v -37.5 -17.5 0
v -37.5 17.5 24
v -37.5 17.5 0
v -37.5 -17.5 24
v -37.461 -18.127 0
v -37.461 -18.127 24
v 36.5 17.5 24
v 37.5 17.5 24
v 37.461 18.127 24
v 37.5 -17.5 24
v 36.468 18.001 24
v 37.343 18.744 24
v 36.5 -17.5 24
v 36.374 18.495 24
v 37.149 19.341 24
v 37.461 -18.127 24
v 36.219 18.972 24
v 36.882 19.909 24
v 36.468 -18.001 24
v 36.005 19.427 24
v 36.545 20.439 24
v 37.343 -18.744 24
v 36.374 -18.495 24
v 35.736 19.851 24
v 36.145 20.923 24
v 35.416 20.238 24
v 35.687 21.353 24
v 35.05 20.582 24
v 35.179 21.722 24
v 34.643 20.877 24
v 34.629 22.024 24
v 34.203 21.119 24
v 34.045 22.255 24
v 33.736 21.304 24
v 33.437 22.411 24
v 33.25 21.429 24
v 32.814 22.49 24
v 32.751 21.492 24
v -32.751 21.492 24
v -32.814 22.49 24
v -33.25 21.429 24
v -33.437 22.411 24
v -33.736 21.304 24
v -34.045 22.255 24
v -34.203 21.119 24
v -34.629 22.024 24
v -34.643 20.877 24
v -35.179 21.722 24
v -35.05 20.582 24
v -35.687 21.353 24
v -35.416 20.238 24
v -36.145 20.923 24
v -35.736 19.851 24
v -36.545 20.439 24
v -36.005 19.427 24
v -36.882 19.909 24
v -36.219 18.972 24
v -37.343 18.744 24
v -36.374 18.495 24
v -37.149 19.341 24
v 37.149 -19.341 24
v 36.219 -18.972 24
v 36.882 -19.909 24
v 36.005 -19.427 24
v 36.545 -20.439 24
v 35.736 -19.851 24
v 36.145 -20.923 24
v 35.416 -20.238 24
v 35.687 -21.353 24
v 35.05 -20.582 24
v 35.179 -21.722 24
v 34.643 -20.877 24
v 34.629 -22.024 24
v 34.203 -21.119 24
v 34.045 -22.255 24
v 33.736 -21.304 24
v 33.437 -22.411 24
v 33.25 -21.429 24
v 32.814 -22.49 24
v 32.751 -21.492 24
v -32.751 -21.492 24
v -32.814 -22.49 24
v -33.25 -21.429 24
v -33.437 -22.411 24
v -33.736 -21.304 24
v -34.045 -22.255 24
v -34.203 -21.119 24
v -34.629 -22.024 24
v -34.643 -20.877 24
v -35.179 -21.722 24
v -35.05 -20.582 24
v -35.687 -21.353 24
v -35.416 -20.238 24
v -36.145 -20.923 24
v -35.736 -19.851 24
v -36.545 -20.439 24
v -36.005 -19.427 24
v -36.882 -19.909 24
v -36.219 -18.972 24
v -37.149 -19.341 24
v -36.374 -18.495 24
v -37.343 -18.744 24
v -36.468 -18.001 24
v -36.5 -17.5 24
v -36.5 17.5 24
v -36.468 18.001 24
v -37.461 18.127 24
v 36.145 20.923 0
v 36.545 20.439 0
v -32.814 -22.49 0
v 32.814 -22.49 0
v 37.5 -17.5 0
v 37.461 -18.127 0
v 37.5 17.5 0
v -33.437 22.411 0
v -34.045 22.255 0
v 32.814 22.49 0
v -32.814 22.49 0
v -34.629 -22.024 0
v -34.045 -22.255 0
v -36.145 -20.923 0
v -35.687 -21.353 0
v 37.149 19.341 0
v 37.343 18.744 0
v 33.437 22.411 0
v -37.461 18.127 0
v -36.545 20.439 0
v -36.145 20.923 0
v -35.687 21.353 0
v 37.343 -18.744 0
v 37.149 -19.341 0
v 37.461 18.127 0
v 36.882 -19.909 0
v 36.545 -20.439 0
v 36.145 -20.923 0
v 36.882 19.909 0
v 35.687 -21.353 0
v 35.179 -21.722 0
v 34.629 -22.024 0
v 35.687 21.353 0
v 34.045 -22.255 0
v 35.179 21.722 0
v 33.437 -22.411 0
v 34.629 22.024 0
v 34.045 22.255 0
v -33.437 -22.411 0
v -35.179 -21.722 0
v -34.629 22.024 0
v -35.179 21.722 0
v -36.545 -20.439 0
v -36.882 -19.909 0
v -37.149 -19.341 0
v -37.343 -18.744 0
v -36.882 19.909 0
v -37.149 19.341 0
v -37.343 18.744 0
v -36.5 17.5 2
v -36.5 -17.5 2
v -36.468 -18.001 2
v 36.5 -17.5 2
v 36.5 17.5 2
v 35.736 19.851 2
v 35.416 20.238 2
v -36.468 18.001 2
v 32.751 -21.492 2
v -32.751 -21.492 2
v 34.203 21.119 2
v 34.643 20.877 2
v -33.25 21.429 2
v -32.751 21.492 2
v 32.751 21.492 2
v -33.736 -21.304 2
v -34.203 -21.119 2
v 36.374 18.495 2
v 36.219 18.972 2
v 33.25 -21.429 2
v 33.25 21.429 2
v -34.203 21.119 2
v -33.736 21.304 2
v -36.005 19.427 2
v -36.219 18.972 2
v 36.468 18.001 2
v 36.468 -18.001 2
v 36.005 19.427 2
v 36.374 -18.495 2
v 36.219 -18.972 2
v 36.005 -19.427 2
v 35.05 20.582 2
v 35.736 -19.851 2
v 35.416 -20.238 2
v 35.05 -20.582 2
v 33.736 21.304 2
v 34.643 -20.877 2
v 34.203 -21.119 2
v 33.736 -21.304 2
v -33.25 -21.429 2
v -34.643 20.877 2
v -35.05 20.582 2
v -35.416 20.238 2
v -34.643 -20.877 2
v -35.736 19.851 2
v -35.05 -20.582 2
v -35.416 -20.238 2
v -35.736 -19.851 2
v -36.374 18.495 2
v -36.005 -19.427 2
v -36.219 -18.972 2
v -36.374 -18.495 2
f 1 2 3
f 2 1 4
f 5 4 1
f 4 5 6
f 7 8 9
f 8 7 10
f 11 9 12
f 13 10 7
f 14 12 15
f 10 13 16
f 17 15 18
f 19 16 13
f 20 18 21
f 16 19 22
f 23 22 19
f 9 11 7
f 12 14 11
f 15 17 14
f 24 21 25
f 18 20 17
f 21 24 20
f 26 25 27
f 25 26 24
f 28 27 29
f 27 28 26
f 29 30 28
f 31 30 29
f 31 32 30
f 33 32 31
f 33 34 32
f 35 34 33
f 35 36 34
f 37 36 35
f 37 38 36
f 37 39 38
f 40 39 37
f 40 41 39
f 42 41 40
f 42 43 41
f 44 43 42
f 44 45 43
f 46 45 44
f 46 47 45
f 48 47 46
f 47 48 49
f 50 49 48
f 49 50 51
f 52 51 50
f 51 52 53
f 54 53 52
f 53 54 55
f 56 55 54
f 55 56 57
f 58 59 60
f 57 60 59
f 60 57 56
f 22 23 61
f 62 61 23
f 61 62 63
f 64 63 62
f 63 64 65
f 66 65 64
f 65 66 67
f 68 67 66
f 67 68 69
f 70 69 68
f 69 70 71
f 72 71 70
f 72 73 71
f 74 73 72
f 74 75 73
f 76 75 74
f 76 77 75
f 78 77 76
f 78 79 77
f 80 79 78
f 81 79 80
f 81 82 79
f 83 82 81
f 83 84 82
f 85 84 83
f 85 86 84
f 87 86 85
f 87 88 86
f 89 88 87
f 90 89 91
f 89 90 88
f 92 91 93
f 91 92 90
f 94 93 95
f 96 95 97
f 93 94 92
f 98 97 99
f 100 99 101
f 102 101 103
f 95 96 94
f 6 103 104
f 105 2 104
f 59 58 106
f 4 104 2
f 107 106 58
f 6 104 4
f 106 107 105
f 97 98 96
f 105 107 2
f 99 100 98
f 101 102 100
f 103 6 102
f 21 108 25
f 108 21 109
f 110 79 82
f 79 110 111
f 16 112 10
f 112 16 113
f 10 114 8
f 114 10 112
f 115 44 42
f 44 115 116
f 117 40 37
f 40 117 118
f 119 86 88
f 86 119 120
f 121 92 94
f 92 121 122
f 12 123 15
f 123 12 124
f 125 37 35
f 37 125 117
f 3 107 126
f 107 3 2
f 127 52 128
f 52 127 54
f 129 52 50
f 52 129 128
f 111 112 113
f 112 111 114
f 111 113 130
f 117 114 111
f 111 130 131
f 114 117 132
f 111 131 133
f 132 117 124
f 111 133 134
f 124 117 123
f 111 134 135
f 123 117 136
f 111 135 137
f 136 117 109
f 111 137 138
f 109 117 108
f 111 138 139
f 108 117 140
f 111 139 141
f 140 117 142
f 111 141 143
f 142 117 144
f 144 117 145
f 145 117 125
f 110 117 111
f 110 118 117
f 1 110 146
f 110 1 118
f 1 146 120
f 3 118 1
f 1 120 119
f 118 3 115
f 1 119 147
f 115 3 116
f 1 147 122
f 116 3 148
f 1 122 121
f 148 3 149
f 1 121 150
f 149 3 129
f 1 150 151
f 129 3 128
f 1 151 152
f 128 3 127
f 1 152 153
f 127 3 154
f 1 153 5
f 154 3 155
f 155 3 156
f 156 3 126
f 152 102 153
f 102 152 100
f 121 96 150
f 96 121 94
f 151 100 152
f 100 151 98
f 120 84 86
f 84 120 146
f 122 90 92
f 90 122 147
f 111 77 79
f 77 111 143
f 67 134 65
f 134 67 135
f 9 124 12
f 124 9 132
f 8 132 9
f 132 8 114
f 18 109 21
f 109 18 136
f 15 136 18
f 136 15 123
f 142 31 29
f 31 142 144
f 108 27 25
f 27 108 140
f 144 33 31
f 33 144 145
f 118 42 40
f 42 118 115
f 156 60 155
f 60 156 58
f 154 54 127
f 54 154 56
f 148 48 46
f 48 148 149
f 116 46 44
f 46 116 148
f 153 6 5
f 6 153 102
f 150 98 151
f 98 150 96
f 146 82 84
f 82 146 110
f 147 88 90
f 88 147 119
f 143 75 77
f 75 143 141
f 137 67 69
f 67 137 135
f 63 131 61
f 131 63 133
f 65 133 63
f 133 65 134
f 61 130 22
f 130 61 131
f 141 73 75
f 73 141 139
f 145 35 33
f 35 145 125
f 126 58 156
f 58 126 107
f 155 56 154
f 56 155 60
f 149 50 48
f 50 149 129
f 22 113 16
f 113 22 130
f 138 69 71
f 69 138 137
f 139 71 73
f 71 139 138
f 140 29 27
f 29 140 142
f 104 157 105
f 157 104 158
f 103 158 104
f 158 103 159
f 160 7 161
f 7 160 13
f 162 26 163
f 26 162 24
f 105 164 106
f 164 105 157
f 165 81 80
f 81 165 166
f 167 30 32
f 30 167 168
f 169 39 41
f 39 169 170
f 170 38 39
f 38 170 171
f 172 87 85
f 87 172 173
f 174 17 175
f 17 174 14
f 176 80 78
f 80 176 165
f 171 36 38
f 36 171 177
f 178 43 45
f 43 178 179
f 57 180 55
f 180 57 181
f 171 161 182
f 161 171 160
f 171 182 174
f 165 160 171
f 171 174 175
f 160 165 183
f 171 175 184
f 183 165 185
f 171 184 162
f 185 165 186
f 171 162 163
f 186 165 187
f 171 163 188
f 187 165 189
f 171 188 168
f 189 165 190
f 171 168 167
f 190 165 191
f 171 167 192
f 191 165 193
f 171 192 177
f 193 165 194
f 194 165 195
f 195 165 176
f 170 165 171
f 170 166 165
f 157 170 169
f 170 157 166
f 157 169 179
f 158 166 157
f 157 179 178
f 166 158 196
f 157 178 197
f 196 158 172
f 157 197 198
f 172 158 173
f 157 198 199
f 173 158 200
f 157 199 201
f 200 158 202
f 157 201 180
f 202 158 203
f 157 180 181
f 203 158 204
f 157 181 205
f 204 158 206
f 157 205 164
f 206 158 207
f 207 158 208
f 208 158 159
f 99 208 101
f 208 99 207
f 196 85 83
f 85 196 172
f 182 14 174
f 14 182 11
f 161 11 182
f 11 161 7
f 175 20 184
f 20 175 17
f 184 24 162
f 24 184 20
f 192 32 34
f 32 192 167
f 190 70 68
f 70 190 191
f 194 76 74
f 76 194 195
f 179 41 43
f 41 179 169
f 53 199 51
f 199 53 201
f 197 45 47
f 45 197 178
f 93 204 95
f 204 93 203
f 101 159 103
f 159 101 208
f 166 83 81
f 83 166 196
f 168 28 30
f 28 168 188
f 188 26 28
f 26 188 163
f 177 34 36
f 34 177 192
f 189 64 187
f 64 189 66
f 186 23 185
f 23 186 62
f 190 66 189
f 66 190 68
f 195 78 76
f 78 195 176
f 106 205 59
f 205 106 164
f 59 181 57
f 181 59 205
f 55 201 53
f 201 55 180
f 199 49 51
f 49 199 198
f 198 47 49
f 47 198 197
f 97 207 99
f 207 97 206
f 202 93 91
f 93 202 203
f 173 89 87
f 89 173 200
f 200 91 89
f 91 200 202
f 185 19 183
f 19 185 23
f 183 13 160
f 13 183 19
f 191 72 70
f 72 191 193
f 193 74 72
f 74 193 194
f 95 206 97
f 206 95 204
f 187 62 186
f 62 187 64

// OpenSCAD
$fn = 50;


difference() {
	union() {
		hull() {
			translate(v = [-32.5000000000, 17.5000000000, 0]) {
				cylinder(h = 24, r = 5);
			}
			translate(v = [32.5000000000, 17.5000000000, 0]) {
				cylinder(h = 24, r = 5);
			}
			translate(v = [-32.5000000000, -17.5000000000, 0]) {
				cylinder(h = 24, r = 5);
			}
			translate(v = [32.5000000000, -17.5000000000, 0]) {
				cylinder(h = 24, r = 5);
			}
		}
	}
	union() {
		translate(v = [0, 0, 2]) {
			hull() {
				translate(v = [-32.5000000000, 17.5000000000, 0]) {
					cylinder(h = 22, r = 4);
				}
				translate(v = [32.5000000000, 17.5000000000, 0]) {
					cylinder(h = 22, r = 4);
				}
				translate(v = [-32.5000000000, -17.5000000000, 0]) {
					cylinder(h = 22, r = 4);
				}
				translate(v = [32.5000000000, -17.5000000000, 0]) {
					cylinder(h = 22, r = 4);
				}
			}
		}
	}
}
